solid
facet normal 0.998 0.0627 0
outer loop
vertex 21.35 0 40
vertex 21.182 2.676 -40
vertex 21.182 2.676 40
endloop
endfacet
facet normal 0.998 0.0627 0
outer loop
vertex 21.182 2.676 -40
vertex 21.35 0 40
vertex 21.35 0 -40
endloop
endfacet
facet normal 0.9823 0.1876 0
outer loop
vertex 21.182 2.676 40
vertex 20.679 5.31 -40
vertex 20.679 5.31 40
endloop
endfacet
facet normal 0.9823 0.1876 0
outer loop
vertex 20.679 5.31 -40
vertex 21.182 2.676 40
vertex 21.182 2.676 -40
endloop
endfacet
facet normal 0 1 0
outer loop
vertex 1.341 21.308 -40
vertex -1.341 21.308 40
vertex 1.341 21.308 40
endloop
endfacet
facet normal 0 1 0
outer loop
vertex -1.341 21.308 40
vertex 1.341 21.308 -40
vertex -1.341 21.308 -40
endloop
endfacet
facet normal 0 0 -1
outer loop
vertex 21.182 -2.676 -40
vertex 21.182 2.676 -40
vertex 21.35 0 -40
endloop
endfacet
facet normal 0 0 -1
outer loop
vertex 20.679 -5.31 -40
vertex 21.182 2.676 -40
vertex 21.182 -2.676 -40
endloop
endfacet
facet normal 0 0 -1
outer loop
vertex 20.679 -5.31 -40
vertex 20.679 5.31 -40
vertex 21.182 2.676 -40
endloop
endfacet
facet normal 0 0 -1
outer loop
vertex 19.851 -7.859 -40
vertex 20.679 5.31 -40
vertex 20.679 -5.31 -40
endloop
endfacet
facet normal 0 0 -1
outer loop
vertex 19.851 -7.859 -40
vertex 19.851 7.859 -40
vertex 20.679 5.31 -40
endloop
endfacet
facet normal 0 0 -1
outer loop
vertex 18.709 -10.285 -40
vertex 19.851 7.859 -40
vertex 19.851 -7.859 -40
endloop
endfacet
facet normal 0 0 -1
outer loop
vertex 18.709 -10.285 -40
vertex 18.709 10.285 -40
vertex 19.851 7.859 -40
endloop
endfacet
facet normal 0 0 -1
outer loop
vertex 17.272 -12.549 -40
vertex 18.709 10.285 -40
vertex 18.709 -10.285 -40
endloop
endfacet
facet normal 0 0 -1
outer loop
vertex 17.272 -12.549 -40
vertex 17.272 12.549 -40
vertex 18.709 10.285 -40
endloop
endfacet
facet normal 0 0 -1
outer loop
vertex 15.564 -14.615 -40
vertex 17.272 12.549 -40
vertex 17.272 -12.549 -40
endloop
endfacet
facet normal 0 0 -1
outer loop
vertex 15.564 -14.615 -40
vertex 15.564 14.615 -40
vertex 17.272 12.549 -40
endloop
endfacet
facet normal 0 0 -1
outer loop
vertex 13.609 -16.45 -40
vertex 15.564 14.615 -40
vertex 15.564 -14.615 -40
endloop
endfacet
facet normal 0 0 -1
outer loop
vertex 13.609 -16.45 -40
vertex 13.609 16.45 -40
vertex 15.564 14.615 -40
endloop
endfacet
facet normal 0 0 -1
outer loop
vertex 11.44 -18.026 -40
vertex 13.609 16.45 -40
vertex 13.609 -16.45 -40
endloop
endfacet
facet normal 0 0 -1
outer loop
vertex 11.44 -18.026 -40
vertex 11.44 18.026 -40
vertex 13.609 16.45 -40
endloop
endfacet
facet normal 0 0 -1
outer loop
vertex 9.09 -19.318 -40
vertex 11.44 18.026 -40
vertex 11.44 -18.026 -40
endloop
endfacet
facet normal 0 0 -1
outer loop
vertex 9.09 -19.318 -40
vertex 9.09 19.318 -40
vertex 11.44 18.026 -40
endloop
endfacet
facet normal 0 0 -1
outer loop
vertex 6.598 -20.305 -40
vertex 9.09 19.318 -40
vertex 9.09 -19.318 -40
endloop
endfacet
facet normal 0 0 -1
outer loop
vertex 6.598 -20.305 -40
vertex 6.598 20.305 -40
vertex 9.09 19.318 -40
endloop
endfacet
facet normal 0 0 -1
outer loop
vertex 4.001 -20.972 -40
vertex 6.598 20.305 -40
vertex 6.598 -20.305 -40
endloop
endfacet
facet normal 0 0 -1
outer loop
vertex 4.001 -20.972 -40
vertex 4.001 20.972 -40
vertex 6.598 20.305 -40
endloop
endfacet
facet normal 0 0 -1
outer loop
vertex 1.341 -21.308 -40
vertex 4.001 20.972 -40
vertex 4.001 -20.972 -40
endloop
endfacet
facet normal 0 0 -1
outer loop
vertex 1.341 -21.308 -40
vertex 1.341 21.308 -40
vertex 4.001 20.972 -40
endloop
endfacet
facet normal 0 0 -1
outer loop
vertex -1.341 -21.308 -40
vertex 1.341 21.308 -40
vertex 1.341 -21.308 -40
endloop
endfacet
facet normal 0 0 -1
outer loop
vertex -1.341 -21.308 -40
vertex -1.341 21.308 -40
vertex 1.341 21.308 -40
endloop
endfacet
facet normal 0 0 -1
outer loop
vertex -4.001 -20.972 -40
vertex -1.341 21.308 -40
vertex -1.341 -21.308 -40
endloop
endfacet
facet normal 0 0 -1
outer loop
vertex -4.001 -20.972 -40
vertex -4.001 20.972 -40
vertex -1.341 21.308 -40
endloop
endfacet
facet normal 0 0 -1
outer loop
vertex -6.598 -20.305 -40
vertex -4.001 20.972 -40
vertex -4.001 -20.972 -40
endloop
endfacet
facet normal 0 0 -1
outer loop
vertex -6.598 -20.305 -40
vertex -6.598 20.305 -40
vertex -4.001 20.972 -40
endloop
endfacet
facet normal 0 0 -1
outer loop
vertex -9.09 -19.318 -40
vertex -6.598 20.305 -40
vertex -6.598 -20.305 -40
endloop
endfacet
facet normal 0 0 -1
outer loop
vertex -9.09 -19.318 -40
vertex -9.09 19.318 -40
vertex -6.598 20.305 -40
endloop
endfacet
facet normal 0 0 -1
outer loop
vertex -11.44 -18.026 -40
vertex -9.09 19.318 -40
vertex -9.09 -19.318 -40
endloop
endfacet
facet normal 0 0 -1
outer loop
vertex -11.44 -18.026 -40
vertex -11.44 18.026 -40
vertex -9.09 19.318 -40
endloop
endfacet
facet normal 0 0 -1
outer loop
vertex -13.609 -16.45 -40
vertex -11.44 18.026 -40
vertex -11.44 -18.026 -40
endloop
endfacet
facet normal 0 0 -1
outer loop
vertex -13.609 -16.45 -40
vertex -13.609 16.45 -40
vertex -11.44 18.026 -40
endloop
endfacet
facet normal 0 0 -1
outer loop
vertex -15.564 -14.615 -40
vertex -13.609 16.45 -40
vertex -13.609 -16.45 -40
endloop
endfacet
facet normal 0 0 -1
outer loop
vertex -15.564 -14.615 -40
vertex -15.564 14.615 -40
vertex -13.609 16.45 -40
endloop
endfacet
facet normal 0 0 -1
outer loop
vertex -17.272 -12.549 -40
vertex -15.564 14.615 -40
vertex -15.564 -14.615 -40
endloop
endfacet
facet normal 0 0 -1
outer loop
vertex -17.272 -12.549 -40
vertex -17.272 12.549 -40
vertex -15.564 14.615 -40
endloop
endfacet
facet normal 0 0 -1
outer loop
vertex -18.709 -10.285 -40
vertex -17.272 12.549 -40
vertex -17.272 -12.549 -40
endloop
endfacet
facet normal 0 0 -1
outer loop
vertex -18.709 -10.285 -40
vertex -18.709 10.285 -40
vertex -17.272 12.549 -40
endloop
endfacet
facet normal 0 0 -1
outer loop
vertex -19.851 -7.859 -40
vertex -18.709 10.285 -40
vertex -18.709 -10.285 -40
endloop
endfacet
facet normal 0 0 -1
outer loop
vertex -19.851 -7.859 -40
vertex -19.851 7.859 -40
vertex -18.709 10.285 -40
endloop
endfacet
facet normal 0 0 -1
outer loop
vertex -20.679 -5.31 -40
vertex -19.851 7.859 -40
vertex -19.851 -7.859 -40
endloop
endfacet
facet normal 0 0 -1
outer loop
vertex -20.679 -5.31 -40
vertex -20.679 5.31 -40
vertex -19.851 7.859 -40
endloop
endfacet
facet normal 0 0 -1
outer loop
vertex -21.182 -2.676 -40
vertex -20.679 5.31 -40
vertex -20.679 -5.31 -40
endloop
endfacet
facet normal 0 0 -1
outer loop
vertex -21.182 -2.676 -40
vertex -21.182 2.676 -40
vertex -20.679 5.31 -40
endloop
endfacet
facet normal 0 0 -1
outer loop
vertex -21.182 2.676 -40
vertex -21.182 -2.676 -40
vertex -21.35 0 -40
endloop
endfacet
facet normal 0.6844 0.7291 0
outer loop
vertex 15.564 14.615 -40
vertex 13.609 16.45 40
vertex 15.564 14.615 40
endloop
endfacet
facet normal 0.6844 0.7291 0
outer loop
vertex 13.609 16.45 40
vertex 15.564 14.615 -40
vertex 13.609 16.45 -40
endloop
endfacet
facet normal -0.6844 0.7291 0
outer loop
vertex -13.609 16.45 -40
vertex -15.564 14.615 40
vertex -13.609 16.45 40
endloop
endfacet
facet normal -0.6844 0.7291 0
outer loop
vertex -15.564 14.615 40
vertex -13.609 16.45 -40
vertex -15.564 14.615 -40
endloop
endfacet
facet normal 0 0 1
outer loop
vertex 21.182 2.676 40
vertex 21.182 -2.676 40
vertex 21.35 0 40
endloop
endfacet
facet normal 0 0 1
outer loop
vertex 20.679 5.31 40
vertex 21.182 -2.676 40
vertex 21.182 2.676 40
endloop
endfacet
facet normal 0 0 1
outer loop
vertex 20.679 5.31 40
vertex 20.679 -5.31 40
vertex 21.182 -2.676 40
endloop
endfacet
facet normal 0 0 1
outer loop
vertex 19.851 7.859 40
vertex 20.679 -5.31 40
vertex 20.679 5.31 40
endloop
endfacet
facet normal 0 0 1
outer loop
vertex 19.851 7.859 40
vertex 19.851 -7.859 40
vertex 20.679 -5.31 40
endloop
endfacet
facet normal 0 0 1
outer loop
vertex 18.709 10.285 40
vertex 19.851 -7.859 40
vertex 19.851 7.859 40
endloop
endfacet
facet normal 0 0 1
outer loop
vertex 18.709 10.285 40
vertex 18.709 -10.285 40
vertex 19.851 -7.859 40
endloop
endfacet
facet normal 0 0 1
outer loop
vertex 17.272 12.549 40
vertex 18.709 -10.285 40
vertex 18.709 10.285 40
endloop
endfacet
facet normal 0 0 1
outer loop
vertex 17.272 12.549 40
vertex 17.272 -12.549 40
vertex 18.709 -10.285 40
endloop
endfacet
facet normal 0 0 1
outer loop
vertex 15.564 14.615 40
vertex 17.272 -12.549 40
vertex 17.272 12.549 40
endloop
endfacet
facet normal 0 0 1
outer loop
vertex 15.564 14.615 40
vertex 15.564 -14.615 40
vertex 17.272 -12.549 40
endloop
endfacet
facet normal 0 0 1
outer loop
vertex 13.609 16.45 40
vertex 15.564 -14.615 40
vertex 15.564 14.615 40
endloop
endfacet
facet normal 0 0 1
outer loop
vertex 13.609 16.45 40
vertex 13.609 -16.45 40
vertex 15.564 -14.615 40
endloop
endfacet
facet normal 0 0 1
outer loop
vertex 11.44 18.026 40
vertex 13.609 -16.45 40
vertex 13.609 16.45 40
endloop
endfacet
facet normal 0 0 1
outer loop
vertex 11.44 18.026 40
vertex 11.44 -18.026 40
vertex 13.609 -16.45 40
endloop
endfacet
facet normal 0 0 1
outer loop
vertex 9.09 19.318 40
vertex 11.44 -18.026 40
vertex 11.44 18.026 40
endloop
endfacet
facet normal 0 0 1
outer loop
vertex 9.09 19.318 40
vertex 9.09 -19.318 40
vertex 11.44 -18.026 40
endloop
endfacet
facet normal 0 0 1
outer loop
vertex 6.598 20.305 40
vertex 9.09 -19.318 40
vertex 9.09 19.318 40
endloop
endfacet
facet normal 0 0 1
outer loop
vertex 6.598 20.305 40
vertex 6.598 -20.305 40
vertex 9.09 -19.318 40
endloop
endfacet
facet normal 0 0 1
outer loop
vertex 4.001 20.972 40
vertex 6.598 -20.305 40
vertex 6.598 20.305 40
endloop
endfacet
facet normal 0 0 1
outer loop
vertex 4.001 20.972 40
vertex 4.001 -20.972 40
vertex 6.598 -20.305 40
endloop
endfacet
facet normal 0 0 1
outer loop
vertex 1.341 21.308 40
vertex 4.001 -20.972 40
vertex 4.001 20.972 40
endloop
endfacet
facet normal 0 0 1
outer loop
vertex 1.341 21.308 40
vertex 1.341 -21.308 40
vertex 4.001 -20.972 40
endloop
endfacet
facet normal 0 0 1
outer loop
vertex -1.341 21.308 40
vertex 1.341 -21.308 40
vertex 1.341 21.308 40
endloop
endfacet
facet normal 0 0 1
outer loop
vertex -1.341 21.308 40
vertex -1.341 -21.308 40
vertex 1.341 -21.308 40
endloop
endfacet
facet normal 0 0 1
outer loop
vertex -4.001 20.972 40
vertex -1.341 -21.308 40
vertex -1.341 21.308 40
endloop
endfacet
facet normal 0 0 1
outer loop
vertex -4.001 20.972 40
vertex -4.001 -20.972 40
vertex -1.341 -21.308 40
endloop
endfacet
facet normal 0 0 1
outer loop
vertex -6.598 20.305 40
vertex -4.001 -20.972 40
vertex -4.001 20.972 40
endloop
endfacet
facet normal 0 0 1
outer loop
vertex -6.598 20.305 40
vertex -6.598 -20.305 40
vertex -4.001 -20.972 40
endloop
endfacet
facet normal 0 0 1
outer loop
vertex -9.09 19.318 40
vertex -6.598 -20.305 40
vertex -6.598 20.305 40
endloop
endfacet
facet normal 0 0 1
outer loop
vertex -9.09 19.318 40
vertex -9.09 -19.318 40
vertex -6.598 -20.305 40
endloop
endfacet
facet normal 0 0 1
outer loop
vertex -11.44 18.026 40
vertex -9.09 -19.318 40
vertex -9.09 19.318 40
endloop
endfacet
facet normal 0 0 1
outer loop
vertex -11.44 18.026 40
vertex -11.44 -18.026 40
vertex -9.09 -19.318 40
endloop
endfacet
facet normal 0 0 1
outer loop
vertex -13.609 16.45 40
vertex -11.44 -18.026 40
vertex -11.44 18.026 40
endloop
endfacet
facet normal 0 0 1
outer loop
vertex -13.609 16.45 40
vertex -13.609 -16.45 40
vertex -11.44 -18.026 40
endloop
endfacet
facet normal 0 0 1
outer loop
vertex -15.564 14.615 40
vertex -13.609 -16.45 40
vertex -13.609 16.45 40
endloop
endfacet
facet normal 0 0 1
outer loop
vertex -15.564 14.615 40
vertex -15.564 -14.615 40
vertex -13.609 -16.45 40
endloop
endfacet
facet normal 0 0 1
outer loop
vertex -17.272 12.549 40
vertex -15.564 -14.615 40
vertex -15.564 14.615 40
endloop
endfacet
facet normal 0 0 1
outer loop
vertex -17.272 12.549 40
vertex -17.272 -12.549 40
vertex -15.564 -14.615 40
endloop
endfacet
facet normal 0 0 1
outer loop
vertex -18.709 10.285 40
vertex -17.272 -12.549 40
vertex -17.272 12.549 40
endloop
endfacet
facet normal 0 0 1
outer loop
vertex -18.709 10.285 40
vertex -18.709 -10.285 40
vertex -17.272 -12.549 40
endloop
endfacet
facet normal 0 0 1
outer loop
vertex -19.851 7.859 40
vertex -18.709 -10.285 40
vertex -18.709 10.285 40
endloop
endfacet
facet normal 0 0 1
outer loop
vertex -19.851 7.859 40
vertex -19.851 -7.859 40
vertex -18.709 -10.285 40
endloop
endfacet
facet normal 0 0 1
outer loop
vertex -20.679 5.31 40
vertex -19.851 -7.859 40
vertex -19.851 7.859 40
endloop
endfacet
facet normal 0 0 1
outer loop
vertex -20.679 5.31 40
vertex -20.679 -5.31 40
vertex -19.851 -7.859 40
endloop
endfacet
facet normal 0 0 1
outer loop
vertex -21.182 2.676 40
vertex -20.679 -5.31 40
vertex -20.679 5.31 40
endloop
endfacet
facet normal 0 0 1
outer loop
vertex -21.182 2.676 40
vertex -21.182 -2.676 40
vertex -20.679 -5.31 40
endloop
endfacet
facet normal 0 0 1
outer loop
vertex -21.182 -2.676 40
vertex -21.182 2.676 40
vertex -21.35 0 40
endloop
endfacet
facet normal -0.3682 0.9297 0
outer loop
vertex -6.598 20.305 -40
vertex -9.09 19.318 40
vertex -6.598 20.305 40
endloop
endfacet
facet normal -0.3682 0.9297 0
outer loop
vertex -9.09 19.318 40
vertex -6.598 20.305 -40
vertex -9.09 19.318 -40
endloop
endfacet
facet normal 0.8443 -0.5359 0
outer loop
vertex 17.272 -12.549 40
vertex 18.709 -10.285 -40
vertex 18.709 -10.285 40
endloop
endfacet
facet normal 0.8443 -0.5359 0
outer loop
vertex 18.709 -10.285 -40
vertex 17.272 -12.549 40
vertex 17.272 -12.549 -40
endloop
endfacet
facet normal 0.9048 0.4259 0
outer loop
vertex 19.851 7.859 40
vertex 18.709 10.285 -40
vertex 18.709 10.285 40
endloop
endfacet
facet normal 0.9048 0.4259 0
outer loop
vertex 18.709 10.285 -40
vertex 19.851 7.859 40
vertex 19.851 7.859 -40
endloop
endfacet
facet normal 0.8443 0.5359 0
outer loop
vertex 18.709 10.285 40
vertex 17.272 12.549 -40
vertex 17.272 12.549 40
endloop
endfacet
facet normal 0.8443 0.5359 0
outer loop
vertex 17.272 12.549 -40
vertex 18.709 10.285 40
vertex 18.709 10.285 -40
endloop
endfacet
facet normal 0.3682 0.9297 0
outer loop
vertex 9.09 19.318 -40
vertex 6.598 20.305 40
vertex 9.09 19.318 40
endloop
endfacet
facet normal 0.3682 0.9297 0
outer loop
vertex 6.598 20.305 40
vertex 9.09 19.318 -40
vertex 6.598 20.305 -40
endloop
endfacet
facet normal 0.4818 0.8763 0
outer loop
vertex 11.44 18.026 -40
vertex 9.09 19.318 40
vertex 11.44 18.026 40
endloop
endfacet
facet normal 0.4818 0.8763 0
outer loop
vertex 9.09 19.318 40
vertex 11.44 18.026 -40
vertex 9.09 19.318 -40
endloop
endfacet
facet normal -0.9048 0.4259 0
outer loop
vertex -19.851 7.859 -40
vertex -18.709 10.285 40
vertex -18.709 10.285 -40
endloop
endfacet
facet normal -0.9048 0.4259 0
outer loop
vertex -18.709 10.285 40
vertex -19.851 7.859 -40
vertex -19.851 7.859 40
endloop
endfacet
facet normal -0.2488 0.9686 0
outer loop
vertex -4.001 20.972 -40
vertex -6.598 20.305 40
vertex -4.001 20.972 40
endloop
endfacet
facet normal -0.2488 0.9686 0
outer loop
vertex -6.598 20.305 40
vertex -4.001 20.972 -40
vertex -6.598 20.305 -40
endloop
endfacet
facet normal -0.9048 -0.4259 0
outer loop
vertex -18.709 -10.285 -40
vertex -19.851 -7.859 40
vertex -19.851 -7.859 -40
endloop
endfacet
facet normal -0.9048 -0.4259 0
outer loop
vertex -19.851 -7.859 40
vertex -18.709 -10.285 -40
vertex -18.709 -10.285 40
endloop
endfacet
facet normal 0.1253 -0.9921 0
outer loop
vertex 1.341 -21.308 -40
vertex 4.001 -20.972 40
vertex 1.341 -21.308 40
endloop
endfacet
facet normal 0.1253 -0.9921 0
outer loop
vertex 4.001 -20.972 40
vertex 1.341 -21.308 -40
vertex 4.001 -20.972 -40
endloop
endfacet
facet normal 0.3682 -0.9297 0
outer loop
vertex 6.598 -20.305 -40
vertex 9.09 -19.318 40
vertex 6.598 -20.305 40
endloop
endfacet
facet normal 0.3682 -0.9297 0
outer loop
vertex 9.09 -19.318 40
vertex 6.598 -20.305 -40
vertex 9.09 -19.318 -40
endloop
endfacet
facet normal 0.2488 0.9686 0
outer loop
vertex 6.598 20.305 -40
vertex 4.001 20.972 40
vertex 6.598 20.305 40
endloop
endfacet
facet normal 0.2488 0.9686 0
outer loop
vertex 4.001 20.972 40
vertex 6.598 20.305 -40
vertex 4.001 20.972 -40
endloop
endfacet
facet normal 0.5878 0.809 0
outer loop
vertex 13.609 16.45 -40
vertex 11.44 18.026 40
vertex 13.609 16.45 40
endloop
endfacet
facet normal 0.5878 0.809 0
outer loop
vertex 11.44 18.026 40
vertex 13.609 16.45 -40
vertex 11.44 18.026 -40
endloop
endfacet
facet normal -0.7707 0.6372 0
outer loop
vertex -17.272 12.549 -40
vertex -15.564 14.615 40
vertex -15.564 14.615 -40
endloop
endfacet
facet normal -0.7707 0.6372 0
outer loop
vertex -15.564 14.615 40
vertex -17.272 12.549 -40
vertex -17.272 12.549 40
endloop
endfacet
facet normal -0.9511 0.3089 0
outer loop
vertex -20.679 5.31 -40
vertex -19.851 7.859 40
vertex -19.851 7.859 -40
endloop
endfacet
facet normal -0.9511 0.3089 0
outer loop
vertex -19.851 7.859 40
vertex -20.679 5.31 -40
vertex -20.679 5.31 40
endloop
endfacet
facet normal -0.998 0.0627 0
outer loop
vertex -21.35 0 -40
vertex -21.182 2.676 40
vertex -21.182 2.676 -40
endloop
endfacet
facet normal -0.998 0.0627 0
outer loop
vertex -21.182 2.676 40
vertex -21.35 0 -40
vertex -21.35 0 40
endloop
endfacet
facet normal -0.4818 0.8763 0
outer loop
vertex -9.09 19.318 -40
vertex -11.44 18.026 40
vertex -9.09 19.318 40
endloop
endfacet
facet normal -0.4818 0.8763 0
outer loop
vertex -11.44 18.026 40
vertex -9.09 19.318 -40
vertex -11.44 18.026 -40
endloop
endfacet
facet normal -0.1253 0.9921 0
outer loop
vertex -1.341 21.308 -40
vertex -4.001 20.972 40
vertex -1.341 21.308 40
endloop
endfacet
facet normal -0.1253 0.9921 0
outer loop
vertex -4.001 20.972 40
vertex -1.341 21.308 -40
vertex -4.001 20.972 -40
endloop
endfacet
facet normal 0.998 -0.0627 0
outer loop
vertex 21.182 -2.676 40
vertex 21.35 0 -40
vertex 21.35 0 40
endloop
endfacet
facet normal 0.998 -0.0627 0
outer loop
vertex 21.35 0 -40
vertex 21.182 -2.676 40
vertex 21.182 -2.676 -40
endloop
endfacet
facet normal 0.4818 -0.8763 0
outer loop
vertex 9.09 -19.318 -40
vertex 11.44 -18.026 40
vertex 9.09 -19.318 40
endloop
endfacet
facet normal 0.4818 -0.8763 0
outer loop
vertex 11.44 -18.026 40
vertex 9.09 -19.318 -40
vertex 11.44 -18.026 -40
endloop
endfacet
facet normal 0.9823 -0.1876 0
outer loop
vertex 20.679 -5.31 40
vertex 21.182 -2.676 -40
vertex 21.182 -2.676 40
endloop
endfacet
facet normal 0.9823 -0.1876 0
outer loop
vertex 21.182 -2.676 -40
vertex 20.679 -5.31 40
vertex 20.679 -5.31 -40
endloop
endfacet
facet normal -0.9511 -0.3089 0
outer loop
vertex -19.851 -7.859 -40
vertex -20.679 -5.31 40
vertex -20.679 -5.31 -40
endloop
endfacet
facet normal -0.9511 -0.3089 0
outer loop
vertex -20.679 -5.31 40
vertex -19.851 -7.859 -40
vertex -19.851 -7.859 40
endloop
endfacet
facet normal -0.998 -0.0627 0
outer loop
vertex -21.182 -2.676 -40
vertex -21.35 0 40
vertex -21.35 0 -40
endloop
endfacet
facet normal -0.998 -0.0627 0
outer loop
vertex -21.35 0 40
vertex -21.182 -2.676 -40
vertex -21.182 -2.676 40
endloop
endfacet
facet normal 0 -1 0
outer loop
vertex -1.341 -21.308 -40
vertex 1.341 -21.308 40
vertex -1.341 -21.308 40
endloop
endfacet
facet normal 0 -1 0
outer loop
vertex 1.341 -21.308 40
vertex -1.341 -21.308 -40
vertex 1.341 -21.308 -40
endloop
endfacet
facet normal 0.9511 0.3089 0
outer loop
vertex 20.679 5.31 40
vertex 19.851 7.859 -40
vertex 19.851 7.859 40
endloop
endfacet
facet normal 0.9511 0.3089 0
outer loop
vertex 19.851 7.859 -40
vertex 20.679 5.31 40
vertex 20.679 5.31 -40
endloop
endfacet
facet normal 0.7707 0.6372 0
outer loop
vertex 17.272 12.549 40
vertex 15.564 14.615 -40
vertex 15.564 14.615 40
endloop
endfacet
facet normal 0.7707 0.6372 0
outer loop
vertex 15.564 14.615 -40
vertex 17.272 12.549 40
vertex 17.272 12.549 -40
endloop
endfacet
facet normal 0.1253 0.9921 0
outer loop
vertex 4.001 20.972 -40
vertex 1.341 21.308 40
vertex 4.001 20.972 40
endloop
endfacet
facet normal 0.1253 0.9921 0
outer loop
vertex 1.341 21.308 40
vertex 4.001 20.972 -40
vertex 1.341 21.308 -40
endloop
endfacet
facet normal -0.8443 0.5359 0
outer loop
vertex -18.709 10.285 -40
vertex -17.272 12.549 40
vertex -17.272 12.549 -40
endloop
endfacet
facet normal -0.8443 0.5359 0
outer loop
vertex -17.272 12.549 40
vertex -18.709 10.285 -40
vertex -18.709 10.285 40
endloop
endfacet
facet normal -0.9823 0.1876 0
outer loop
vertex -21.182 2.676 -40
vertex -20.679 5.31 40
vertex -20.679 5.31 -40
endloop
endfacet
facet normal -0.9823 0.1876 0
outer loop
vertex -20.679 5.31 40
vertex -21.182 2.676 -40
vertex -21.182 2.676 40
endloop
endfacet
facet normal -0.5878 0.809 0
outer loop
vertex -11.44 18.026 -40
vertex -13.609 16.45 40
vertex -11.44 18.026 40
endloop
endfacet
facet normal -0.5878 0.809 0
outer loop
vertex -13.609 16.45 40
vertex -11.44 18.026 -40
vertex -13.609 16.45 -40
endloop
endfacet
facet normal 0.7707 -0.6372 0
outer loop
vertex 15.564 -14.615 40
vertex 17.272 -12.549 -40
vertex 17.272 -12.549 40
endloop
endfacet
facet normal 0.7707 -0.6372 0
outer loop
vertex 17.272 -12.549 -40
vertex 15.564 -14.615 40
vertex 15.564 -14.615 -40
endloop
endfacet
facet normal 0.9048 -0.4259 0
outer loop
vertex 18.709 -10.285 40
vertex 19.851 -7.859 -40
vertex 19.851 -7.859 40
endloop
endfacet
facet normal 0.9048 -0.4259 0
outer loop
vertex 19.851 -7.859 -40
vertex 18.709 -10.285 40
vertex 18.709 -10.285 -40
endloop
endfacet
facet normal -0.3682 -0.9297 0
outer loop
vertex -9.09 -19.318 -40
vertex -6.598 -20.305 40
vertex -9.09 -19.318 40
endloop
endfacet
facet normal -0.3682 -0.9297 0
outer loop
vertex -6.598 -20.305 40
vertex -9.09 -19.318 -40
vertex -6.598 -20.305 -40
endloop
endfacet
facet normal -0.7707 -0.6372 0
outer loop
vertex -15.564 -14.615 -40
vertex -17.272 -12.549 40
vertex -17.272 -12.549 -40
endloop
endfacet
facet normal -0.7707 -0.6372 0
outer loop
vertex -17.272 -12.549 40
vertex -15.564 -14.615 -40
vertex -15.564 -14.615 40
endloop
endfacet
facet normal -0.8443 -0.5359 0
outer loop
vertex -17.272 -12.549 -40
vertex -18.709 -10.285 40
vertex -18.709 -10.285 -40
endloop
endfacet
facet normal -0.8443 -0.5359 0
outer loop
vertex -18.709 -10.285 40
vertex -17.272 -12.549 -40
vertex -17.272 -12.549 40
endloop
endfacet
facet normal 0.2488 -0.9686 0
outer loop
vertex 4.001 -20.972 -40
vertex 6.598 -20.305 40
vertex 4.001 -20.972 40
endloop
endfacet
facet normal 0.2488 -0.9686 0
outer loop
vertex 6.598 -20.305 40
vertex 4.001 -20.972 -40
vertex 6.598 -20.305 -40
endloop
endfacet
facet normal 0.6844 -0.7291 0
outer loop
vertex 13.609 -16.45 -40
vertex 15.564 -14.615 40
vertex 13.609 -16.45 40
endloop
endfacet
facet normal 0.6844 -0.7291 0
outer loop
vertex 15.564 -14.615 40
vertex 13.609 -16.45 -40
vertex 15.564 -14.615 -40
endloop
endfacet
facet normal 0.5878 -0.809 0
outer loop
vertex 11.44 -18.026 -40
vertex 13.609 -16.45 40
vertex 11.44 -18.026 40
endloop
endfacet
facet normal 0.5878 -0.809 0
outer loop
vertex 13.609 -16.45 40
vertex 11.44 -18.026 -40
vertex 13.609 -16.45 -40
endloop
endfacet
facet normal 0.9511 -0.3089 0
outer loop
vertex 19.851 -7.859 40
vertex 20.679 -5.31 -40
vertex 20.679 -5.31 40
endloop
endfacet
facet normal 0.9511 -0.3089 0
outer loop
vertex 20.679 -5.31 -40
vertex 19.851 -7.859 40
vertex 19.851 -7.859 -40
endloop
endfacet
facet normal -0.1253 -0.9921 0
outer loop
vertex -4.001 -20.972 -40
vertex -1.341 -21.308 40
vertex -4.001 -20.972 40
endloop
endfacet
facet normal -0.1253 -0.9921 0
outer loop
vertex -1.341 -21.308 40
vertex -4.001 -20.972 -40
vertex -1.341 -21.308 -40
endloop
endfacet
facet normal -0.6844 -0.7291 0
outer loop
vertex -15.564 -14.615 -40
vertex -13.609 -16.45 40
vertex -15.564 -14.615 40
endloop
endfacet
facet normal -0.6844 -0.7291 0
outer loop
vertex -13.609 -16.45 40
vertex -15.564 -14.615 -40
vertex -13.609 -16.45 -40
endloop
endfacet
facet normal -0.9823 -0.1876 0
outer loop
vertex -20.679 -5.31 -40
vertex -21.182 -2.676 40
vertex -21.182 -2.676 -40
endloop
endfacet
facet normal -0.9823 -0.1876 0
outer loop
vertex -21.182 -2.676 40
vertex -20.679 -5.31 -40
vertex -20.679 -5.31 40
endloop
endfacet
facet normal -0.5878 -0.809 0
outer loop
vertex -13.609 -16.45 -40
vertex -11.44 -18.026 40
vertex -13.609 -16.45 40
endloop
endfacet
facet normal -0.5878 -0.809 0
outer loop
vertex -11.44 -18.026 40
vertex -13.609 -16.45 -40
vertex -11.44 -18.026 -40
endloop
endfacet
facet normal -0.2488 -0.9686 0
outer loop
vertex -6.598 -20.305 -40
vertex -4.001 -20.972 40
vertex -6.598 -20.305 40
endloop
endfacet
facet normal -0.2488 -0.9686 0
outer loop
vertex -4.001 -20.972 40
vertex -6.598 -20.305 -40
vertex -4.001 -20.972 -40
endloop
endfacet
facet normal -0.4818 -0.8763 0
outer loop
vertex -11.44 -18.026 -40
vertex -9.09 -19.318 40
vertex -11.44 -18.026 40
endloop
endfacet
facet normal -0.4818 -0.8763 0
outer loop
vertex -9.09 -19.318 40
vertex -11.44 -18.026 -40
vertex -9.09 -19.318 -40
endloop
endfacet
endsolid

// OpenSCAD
$fn = 50;


difference() {
	union() {
		translate(v = [0, 0, -40.0000000000]) {
			cylinder(h = 80, r = 21.3500000000);
		}
	}
	union() {
		translate(v = [0, 0, -100.0000000000]) {
			cylinder(h = 200, r = 0);
		}
	}
}
